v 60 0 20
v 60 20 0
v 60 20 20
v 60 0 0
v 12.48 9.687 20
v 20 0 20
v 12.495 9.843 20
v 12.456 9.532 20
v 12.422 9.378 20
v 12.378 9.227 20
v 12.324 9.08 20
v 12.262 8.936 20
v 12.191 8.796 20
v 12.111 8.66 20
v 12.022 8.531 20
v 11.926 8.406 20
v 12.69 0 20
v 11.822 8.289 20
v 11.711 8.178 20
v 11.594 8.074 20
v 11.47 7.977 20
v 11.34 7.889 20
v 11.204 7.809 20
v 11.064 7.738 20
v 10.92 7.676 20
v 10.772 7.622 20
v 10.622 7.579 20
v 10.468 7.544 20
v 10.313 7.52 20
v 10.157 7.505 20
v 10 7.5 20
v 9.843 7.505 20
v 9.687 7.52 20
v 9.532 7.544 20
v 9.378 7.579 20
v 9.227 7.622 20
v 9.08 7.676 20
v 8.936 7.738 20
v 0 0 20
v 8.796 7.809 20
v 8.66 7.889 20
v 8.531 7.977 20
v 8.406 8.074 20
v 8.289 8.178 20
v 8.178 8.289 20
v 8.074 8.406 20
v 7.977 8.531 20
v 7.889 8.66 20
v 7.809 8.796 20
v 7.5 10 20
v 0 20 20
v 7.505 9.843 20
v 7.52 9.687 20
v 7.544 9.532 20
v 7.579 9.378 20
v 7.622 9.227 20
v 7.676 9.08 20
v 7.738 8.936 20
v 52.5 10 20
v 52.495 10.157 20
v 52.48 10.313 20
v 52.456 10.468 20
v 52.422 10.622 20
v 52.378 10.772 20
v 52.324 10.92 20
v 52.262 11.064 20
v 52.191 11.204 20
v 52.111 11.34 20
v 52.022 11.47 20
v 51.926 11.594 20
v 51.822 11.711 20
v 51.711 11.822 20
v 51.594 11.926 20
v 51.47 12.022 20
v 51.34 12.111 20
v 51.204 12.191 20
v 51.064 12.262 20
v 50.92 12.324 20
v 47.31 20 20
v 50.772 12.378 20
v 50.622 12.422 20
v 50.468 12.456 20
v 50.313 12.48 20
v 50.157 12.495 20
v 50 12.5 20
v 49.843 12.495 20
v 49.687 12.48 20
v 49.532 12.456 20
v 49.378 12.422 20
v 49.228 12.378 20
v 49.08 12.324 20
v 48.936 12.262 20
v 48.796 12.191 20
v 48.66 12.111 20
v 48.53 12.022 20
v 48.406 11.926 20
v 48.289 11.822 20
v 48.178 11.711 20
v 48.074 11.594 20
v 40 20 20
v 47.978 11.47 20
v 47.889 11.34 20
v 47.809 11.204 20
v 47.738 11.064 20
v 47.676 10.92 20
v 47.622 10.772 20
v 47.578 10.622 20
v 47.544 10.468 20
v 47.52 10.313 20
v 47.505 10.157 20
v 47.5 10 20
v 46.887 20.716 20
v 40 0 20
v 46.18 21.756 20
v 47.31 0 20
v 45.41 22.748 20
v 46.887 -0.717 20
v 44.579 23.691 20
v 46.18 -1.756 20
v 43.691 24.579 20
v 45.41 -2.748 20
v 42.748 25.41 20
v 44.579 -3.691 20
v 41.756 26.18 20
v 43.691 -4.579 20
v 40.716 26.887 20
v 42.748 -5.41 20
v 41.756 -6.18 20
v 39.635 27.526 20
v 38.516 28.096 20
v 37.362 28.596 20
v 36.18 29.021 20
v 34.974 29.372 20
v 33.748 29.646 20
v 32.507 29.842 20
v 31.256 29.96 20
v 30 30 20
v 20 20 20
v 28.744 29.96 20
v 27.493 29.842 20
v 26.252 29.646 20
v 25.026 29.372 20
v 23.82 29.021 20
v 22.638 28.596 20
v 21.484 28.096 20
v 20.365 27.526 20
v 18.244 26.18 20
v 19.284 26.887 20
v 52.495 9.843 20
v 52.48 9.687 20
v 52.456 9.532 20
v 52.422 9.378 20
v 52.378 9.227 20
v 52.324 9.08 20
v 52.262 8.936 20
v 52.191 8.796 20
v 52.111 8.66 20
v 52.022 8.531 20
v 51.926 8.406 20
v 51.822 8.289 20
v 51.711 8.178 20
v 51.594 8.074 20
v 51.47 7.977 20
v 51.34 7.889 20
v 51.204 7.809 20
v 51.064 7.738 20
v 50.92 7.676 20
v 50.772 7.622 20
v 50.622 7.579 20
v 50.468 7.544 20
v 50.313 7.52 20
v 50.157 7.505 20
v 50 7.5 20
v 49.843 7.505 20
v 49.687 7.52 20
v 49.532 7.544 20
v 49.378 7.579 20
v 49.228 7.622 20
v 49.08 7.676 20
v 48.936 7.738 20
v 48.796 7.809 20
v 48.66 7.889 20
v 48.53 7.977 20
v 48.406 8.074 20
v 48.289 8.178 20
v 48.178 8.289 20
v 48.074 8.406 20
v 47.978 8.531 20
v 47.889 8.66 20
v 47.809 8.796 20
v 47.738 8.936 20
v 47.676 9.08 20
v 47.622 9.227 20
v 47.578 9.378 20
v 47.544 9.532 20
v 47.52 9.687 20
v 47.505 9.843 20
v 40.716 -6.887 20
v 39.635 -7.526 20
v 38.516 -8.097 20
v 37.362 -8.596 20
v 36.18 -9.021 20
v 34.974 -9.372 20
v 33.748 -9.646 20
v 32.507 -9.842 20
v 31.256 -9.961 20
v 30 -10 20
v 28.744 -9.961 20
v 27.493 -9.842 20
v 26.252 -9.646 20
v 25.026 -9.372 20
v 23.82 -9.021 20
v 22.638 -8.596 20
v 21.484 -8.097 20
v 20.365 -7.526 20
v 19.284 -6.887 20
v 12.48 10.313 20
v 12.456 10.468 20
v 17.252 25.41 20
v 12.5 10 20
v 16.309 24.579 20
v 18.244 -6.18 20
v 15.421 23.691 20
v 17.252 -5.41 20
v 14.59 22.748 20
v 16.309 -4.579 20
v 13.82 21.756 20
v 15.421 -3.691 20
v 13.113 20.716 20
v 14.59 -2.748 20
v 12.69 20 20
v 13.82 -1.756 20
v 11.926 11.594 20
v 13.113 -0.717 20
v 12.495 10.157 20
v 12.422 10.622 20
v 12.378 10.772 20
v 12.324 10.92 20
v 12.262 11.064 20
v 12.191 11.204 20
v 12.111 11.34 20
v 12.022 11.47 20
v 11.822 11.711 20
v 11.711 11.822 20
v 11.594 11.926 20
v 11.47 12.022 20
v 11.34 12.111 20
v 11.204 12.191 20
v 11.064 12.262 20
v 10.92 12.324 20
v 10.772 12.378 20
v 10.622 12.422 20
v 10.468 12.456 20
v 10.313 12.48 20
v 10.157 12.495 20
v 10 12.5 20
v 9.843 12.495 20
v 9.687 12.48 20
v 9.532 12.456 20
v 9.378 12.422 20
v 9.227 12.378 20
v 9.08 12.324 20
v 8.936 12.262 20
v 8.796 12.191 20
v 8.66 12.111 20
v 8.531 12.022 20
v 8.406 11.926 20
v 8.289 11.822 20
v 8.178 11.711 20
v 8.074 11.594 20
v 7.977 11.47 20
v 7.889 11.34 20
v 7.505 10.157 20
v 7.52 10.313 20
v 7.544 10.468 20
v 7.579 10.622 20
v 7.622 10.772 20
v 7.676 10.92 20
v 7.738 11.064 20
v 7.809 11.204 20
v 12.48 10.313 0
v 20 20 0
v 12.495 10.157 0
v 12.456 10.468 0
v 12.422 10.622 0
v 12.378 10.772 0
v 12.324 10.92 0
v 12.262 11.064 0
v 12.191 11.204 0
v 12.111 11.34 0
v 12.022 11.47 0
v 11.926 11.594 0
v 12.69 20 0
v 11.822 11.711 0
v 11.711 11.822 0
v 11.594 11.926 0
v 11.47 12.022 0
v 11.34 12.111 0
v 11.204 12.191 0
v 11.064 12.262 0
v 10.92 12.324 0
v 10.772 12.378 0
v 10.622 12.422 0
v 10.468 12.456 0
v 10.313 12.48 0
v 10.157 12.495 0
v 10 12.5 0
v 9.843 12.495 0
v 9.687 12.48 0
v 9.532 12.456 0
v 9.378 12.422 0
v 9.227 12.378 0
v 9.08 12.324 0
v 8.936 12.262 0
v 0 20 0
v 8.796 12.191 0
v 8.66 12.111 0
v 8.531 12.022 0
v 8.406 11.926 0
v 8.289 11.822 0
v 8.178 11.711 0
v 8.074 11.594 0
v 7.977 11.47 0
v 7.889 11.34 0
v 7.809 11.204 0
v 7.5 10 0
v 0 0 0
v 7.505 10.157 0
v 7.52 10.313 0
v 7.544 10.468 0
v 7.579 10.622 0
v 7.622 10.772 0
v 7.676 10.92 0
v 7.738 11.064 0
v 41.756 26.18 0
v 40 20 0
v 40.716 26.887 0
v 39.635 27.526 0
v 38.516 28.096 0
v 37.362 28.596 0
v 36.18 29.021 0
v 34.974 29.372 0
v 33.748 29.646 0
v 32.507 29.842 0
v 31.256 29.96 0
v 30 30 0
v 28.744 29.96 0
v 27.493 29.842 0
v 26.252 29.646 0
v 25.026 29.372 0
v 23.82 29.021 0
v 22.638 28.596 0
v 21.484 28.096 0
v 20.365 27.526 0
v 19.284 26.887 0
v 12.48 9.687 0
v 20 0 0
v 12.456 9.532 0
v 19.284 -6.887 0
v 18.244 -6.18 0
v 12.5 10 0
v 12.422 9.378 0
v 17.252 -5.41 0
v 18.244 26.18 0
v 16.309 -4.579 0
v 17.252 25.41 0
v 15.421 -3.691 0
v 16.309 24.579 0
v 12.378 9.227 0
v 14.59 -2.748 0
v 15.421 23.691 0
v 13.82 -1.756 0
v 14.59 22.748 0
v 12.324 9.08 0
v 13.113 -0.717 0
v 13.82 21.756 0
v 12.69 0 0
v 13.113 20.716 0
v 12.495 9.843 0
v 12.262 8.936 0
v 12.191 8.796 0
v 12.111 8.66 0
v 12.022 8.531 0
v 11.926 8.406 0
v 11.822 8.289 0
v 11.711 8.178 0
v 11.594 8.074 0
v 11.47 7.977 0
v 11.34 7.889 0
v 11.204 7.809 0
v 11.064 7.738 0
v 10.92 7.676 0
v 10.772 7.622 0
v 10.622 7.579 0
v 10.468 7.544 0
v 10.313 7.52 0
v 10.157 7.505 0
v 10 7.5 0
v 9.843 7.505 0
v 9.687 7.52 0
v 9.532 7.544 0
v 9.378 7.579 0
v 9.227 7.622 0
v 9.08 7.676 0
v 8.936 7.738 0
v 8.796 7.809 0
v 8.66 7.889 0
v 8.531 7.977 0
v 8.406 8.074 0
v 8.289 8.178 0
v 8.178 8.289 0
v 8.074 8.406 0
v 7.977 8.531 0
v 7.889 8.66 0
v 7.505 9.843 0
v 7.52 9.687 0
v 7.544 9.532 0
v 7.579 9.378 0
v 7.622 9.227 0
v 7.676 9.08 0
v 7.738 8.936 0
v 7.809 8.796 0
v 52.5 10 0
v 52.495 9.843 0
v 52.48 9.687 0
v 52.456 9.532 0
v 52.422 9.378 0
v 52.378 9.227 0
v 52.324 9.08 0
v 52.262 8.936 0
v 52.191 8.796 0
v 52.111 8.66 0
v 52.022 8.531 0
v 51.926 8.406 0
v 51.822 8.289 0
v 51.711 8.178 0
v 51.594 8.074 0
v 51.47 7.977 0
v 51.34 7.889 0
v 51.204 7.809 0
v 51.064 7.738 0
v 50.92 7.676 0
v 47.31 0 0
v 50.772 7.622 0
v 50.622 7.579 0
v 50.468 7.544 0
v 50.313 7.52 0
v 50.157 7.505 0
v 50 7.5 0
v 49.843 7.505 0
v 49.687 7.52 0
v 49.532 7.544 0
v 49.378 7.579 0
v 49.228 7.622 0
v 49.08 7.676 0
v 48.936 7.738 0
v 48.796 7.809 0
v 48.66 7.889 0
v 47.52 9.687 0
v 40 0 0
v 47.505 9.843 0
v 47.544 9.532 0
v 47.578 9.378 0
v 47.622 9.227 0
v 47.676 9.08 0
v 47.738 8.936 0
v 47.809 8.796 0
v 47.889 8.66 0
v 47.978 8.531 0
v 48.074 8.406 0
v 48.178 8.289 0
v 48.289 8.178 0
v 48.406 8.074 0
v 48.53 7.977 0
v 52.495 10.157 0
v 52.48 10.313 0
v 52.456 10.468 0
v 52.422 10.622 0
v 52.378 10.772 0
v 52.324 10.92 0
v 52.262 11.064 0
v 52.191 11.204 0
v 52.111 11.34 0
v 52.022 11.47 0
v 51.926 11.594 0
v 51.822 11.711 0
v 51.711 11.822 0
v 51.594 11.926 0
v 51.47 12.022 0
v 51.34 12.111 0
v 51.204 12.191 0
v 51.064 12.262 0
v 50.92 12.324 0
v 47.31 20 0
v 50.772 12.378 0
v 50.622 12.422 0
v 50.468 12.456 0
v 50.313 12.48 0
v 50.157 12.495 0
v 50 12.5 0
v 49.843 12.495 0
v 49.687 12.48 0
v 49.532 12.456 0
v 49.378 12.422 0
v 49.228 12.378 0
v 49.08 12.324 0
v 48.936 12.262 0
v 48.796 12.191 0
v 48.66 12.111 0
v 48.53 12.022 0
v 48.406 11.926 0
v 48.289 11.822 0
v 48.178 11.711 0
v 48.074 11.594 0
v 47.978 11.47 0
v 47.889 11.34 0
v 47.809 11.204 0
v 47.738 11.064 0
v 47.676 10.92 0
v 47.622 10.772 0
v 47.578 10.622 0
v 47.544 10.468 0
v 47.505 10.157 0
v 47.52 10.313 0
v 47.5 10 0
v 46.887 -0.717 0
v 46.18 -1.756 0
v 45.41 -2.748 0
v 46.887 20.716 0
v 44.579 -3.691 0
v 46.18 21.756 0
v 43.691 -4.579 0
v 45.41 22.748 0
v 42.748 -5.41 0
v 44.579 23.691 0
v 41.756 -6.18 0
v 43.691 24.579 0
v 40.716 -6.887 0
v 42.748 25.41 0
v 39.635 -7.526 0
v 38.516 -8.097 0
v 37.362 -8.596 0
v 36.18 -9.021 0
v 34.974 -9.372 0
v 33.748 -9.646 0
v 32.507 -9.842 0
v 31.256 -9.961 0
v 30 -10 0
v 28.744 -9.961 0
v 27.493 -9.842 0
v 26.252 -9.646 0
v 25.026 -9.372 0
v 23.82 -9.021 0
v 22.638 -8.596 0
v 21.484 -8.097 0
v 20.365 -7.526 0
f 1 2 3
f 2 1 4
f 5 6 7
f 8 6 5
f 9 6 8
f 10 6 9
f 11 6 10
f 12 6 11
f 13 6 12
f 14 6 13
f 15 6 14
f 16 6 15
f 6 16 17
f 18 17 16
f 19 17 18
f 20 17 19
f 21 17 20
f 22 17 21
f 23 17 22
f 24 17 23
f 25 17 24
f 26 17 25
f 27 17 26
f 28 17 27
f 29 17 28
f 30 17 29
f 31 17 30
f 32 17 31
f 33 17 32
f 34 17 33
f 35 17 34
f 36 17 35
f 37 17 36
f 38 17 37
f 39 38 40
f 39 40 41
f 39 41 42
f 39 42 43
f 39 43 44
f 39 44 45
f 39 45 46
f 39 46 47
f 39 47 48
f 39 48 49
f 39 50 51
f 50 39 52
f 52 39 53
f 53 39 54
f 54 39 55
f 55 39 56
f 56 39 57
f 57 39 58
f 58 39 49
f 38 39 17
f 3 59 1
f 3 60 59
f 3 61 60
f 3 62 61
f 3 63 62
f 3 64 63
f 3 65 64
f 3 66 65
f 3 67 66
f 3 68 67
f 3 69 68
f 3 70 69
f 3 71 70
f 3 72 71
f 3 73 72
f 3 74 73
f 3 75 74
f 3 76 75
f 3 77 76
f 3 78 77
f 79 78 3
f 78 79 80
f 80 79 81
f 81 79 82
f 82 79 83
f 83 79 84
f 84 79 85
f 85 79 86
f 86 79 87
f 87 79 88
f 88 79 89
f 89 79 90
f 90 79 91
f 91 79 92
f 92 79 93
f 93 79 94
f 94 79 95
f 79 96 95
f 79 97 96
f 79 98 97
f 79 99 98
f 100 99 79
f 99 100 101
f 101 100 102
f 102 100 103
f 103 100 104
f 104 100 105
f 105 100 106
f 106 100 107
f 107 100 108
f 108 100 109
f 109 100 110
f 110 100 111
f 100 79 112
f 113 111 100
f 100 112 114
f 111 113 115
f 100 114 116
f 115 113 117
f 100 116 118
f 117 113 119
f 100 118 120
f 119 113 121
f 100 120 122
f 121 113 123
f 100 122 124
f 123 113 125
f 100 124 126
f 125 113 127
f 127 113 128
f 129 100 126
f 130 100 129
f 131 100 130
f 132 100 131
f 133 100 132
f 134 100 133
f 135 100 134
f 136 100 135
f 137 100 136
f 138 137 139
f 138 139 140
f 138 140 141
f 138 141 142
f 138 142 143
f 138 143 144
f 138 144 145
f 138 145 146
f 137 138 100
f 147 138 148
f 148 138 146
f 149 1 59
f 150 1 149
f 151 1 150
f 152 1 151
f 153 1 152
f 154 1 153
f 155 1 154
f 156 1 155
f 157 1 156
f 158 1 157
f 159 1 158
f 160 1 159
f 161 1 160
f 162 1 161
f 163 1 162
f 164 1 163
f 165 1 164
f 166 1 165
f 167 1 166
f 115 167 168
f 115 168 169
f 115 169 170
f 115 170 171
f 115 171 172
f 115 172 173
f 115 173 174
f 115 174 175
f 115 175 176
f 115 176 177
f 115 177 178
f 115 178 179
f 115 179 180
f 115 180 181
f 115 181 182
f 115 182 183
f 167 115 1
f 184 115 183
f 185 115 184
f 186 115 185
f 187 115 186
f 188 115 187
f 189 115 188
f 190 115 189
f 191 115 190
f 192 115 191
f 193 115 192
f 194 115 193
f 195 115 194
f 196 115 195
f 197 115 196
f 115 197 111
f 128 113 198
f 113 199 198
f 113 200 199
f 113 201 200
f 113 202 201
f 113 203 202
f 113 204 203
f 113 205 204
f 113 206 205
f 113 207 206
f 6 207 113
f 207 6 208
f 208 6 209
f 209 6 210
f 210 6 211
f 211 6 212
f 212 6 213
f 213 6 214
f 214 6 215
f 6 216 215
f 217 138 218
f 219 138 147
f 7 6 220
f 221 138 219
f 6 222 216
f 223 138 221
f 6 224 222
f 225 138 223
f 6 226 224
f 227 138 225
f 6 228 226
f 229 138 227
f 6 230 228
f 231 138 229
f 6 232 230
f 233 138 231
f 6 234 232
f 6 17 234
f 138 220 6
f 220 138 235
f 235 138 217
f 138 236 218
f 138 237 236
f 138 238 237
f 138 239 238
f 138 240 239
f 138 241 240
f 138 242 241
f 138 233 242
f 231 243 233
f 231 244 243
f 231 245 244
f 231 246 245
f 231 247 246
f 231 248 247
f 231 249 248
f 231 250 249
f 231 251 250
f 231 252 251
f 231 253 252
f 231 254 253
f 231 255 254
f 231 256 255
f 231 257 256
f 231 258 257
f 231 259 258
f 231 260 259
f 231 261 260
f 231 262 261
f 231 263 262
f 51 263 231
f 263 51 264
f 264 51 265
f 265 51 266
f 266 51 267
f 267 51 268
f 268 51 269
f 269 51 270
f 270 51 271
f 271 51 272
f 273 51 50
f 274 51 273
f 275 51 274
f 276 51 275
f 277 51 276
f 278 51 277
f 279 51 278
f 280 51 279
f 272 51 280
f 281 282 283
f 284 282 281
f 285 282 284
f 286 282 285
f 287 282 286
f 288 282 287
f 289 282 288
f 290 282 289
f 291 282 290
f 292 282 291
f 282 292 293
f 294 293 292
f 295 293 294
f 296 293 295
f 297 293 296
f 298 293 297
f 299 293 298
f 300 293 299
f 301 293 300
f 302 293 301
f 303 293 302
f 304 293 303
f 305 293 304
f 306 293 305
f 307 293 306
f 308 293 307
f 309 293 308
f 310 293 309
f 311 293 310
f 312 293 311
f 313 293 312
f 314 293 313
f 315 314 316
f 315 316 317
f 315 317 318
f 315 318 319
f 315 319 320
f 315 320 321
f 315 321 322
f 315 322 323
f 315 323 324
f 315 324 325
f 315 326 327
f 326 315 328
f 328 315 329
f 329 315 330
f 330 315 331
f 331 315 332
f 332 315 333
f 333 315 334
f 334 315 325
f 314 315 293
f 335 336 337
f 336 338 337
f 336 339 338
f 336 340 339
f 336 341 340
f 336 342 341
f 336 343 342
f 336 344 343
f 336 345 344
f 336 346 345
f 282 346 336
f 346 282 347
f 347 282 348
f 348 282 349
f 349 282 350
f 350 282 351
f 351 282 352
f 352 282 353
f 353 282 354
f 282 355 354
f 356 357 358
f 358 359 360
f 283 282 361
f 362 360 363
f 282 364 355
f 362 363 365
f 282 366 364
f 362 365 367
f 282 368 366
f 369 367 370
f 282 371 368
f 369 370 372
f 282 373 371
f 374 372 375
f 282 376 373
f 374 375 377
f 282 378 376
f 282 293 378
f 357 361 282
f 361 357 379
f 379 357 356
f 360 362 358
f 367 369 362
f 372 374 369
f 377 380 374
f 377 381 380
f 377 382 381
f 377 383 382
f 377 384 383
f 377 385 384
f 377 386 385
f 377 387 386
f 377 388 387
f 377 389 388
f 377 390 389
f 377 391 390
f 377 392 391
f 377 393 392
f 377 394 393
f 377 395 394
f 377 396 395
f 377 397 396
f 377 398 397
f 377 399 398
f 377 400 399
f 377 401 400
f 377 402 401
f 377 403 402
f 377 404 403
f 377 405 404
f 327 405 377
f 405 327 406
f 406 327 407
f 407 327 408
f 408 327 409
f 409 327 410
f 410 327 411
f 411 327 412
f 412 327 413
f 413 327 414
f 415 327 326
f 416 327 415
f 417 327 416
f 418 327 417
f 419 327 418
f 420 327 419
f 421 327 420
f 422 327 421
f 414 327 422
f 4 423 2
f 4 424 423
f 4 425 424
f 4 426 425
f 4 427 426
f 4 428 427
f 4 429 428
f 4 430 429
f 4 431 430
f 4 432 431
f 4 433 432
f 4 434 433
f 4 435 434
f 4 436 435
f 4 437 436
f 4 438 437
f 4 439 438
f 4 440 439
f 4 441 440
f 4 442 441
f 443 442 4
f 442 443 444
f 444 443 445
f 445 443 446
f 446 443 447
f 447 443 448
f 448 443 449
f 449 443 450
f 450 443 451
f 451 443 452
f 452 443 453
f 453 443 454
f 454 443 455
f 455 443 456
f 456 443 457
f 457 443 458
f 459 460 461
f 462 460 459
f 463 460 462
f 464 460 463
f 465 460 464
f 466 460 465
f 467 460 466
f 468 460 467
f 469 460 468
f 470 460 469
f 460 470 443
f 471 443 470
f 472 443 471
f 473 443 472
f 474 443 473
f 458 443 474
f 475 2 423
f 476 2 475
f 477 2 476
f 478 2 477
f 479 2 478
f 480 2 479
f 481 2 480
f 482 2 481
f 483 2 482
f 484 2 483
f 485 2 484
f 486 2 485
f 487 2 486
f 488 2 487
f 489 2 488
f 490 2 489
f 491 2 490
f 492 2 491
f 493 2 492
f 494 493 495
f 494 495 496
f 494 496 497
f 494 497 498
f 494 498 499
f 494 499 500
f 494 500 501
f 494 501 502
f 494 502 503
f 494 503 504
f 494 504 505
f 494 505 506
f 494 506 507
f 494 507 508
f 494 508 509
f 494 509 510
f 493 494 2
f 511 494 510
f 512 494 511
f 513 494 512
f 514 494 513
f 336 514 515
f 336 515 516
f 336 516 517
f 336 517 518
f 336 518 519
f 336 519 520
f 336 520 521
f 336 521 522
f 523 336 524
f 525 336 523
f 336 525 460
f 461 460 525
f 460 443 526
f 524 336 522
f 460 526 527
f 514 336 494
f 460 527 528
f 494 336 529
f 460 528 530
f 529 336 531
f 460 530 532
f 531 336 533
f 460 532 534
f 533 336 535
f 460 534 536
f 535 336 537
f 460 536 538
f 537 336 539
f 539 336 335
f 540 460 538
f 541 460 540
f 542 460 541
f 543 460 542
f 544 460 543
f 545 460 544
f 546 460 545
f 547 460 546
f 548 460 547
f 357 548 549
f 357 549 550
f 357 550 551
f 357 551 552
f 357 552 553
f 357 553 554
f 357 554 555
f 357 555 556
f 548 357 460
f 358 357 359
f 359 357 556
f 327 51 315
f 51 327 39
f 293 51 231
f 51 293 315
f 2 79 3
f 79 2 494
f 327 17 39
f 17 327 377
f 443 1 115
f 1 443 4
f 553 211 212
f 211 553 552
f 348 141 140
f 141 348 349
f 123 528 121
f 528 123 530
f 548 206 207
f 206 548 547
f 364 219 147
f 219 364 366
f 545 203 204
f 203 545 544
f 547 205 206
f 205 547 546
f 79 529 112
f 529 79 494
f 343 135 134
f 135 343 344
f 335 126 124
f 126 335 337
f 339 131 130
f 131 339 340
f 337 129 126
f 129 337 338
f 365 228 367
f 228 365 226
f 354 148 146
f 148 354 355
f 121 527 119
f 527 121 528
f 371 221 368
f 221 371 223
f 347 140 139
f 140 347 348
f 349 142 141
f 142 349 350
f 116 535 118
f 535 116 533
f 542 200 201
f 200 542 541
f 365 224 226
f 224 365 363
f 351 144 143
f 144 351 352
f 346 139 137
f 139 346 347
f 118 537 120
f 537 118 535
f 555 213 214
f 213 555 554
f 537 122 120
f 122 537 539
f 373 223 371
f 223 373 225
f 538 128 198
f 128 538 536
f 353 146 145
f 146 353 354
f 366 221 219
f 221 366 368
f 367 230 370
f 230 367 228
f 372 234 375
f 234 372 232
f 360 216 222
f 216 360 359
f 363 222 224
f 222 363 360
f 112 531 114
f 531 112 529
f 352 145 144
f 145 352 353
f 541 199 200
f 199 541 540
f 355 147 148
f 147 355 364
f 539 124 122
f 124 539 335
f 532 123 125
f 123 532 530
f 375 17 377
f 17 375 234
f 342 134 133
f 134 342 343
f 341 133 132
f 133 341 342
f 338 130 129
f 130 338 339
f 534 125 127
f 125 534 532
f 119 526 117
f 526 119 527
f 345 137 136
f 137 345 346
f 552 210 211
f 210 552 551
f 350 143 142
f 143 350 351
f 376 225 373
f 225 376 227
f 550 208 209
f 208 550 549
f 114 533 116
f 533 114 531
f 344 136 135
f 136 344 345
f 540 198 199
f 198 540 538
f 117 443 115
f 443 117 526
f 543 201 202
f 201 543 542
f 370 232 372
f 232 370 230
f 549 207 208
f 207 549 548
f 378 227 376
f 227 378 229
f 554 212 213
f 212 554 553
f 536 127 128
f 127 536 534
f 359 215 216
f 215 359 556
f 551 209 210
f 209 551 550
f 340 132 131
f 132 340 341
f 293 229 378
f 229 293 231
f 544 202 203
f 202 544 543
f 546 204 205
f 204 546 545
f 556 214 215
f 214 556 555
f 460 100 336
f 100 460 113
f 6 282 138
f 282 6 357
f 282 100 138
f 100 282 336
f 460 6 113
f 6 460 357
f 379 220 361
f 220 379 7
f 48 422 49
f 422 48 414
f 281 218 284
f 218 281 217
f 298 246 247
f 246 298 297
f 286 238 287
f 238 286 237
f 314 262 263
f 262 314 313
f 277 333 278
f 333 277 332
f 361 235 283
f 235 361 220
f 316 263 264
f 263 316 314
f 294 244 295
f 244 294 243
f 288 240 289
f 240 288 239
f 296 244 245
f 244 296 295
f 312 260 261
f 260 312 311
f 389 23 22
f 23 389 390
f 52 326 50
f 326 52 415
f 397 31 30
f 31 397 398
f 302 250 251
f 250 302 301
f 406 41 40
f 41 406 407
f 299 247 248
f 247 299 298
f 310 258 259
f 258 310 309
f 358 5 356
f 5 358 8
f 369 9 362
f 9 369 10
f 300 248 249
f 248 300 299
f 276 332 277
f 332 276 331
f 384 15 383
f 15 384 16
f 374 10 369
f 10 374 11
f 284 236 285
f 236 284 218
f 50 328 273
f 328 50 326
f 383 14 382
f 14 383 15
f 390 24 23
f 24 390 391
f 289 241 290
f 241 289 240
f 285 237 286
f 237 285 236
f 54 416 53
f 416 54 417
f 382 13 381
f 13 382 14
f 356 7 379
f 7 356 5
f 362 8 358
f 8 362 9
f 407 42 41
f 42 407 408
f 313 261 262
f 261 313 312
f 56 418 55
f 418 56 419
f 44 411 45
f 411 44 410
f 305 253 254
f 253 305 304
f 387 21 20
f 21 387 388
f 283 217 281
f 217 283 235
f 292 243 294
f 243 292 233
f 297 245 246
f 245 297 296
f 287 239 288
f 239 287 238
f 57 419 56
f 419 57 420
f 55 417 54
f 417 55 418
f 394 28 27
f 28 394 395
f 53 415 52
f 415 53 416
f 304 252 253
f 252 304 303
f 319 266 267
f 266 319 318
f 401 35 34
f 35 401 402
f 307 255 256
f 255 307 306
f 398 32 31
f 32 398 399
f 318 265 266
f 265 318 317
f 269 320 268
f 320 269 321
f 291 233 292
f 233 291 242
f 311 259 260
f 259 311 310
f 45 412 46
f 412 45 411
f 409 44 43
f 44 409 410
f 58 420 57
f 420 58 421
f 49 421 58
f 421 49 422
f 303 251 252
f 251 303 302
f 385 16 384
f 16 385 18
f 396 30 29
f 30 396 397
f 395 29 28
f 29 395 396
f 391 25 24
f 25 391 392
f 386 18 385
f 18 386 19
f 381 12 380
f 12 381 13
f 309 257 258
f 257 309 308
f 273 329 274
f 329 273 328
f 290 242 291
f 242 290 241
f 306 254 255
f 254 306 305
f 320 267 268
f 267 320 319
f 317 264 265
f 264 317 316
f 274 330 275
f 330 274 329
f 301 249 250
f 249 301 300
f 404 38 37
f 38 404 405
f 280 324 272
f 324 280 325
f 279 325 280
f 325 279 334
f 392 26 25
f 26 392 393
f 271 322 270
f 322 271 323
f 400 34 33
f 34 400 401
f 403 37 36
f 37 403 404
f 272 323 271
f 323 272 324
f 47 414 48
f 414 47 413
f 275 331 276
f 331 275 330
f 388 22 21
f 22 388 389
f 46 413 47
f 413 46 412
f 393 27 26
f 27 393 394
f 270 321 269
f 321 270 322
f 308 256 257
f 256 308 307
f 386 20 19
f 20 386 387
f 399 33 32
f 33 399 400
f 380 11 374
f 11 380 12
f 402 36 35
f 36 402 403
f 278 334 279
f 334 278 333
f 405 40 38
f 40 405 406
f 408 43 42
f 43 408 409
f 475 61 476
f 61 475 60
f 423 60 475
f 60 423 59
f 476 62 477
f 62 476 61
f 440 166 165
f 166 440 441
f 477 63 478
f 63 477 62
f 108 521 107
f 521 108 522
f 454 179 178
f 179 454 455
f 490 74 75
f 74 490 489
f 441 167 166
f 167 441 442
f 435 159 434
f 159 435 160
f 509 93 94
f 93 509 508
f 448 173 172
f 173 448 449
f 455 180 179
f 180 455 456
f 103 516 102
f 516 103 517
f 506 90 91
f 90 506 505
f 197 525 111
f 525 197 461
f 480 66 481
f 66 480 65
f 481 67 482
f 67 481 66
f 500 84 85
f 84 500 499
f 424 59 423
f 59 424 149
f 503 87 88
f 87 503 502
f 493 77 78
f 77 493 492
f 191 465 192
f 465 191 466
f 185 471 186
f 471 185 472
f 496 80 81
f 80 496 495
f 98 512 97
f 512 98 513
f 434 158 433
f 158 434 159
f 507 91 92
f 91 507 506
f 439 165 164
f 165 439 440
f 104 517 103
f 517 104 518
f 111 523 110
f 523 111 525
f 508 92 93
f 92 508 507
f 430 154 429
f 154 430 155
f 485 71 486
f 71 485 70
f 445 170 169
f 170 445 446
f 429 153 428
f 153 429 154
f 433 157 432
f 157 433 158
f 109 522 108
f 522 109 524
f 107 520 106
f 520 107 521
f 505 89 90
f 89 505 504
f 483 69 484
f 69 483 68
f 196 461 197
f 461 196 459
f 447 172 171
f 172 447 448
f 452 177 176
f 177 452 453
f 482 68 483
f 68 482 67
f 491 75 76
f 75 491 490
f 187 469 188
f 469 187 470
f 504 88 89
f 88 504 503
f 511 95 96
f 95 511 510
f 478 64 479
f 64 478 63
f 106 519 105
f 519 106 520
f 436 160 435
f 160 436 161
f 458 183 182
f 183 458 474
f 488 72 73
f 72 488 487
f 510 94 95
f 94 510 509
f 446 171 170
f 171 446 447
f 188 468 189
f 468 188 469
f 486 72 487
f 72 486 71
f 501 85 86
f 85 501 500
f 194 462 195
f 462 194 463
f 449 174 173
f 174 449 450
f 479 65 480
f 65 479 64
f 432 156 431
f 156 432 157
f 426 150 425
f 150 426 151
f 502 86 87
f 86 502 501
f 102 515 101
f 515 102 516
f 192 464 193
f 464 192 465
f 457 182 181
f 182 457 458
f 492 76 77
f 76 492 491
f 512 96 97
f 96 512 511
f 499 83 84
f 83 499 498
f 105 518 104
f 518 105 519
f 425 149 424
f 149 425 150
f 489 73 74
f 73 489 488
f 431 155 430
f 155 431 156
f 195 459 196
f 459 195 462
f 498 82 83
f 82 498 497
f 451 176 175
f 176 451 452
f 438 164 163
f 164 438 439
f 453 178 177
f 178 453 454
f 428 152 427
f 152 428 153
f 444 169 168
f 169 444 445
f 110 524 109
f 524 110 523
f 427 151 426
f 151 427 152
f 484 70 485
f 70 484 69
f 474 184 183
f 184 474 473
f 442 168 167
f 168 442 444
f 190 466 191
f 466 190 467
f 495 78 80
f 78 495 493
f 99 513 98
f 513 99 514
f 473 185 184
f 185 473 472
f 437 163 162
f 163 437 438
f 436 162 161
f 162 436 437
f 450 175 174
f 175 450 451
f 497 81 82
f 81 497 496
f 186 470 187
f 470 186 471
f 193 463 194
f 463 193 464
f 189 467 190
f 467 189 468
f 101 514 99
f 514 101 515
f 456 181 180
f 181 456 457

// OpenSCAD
$fn=100;
difference() {
    union() {
    cube([60, 20, 20]);
translate([30, 10, 0]) {
    cylinder(20, 20, 20);
}
}
translate([20, 0, -1]) {
    cube([20, 20, 50]);
}
translate([10, 10,  -1]) {
cylinder(30, 2.5, 2.5);
}
translate([50, 10,  -1]) {
cylinder(30, 2.5, 2.5);
}
}
